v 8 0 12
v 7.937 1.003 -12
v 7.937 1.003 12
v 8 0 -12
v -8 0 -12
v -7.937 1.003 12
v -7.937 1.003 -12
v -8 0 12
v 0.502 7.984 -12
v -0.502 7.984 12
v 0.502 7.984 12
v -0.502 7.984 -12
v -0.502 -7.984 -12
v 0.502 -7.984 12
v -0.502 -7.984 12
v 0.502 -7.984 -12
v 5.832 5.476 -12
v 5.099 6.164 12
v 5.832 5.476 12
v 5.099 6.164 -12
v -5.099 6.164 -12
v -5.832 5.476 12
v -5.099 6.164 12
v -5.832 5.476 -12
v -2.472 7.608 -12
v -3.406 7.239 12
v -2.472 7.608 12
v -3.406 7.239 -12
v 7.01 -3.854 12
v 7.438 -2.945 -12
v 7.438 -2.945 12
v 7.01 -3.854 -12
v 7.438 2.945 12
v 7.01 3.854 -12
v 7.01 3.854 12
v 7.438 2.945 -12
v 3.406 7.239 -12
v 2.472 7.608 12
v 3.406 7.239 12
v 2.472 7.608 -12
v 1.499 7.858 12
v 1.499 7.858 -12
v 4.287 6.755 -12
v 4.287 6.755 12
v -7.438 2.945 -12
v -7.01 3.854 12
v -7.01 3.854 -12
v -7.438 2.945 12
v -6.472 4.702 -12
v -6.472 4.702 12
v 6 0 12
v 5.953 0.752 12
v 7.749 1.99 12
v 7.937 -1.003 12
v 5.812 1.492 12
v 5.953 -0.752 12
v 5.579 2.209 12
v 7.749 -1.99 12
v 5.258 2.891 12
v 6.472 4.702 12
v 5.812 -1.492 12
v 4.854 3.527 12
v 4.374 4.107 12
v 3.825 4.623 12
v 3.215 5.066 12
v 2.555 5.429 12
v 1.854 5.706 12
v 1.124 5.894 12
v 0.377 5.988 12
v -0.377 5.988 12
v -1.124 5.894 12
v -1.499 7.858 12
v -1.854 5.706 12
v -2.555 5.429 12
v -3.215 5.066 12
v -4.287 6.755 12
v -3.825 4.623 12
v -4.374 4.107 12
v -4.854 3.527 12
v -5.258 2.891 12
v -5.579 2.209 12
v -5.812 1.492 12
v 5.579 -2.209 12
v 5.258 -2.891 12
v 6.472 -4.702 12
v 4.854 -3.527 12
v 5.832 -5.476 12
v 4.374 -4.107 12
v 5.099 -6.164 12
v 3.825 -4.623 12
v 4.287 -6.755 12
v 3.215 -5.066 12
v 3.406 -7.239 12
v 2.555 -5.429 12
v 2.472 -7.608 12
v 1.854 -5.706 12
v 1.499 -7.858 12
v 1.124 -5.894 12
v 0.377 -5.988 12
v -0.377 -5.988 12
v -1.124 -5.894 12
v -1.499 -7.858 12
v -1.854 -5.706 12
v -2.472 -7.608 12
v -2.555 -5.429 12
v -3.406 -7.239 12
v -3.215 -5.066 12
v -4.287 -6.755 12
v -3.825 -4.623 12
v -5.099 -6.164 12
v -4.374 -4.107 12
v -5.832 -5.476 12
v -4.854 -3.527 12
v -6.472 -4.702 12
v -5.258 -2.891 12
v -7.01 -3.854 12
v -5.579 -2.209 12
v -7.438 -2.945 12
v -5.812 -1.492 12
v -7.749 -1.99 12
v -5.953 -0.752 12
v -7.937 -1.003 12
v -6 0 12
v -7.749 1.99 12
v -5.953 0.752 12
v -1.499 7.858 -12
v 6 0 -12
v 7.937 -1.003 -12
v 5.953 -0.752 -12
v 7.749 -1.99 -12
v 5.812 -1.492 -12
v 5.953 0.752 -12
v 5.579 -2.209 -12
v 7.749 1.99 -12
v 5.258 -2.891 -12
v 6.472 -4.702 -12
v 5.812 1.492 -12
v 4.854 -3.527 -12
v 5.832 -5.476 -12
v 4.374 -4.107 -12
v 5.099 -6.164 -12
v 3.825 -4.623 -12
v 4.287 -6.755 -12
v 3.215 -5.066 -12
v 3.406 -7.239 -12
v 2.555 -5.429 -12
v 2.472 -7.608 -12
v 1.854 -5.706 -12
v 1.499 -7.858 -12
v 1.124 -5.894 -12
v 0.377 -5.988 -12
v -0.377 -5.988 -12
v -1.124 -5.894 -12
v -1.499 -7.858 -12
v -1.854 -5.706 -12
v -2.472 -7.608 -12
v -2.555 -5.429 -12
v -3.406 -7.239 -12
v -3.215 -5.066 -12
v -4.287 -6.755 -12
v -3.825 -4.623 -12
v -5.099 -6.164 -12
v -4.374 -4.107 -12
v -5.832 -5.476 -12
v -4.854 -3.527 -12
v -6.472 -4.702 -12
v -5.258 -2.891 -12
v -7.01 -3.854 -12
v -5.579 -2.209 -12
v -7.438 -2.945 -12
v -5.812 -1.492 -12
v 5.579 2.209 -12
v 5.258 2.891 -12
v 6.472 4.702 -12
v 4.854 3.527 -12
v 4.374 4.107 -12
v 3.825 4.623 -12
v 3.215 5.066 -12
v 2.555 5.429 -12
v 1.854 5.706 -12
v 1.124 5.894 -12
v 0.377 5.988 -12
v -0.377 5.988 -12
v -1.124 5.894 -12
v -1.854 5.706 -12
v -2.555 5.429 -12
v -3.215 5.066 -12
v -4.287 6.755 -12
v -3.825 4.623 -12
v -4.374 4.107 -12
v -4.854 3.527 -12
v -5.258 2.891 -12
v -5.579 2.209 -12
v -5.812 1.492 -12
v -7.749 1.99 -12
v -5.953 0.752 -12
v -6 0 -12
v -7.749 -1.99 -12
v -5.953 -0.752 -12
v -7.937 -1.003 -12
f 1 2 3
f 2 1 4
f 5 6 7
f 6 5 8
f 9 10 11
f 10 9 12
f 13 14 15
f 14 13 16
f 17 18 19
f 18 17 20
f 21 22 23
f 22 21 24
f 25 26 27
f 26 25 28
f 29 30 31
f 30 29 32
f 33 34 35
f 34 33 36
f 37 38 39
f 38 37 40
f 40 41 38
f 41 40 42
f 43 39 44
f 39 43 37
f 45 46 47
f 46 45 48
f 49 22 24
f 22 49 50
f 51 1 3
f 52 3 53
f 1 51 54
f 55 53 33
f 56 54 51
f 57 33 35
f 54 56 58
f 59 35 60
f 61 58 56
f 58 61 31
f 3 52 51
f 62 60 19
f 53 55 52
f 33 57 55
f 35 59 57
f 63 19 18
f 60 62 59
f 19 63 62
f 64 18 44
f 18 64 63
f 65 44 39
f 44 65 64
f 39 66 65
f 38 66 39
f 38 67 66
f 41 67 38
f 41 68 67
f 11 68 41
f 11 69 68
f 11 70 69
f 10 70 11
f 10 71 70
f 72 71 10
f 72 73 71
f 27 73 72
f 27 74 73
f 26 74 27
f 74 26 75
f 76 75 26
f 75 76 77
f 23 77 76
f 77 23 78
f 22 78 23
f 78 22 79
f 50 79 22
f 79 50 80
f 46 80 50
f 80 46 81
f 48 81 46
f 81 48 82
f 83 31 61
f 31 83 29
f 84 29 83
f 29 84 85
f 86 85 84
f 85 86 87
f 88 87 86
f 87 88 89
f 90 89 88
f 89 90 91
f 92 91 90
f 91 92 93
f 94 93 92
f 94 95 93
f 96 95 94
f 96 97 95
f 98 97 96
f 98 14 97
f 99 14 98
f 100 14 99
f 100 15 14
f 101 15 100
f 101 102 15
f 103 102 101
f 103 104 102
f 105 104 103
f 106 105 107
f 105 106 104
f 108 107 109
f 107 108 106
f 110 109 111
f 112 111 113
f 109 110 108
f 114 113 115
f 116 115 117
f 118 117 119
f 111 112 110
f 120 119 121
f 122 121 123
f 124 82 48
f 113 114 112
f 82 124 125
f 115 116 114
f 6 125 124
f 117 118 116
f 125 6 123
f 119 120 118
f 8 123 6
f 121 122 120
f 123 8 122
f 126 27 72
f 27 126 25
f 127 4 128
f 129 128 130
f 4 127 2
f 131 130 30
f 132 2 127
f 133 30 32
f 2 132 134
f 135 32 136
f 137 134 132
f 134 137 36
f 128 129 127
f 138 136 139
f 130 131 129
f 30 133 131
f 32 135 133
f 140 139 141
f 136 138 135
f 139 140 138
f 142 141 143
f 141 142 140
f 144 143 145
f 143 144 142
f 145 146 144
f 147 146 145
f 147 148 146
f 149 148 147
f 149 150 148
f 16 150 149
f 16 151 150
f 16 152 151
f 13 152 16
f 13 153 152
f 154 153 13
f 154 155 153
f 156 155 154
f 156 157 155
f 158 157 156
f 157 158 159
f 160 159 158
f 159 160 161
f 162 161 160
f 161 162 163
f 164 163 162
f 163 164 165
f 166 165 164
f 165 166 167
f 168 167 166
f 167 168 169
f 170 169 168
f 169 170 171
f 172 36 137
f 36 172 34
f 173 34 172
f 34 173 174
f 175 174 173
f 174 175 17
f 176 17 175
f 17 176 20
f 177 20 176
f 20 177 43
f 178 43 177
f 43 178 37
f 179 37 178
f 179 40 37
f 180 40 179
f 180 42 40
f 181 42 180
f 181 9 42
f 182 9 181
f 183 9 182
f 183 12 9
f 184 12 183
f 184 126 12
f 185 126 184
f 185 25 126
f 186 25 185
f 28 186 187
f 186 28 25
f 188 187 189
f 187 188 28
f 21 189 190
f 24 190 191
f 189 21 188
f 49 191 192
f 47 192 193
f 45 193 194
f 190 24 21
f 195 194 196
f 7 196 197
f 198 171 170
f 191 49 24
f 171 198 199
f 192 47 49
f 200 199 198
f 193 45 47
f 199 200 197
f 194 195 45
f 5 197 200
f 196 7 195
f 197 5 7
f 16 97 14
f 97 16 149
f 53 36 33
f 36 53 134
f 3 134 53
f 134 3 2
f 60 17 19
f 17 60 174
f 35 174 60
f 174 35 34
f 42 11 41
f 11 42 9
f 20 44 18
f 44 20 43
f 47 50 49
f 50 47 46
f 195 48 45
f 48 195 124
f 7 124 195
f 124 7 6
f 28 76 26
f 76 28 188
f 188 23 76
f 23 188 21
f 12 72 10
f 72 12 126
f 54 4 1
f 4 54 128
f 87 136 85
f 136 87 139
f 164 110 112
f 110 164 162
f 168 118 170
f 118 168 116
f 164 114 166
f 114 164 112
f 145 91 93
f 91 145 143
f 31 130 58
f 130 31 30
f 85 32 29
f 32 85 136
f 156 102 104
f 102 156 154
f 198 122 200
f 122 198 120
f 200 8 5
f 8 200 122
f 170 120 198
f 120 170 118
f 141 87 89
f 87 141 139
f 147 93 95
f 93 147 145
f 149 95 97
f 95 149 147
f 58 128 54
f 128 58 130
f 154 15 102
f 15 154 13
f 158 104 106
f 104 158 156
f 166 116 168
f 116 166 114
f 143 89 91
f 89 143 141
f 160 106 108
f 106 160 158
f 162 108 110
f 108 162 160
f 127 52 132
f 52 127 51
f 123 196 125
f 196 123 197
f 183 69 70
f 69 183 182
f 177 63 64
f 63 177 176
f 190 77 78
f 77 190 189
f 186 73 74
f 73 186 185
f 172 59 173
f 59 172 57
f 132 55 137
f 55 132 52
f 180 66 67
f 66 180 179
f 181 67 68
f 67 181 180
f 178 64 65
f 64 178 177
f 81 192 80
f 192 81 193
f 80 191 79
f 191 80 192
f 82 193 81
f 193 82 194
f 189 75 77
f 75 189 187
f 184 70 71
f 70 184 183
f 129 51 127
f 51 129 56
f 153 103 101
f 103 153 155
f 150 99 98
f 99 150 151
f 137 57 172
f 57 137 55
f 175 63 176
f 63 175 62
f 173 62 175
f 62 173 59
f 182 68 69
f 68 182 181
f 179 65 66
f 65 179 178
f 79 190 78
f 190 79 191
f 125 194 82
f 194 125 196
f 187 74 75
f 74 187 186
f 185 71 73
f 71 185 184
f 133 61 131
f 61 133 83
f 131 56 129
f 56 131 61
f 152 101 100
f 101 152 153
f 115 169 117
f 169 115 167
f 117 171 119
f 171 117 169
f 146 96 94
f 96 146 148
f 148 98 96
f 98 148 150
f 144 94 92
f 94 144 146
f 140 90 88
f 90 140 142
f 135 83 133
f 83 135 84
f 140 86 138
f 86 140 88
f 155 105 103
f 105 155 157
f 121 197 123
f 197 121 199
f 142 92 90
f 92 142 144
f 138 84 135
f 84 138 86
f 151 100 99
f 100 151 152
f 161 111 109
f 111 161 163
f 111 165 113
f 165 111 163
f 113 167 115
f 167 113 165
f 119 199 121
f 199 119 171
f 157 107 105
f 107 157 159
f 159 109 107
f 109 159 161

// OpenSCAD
$fn = 50;


difference() {
	union() {
		translate(v = [0, 0, -12.0000000000]) {
			cylinder(h = 24, r = 8.0000000000);
		}
	}
	union() {
		translate(v = [0, 0, -100.0000000000]) {
			cylinder(h = 200, r = 6);
		}
	}
}
